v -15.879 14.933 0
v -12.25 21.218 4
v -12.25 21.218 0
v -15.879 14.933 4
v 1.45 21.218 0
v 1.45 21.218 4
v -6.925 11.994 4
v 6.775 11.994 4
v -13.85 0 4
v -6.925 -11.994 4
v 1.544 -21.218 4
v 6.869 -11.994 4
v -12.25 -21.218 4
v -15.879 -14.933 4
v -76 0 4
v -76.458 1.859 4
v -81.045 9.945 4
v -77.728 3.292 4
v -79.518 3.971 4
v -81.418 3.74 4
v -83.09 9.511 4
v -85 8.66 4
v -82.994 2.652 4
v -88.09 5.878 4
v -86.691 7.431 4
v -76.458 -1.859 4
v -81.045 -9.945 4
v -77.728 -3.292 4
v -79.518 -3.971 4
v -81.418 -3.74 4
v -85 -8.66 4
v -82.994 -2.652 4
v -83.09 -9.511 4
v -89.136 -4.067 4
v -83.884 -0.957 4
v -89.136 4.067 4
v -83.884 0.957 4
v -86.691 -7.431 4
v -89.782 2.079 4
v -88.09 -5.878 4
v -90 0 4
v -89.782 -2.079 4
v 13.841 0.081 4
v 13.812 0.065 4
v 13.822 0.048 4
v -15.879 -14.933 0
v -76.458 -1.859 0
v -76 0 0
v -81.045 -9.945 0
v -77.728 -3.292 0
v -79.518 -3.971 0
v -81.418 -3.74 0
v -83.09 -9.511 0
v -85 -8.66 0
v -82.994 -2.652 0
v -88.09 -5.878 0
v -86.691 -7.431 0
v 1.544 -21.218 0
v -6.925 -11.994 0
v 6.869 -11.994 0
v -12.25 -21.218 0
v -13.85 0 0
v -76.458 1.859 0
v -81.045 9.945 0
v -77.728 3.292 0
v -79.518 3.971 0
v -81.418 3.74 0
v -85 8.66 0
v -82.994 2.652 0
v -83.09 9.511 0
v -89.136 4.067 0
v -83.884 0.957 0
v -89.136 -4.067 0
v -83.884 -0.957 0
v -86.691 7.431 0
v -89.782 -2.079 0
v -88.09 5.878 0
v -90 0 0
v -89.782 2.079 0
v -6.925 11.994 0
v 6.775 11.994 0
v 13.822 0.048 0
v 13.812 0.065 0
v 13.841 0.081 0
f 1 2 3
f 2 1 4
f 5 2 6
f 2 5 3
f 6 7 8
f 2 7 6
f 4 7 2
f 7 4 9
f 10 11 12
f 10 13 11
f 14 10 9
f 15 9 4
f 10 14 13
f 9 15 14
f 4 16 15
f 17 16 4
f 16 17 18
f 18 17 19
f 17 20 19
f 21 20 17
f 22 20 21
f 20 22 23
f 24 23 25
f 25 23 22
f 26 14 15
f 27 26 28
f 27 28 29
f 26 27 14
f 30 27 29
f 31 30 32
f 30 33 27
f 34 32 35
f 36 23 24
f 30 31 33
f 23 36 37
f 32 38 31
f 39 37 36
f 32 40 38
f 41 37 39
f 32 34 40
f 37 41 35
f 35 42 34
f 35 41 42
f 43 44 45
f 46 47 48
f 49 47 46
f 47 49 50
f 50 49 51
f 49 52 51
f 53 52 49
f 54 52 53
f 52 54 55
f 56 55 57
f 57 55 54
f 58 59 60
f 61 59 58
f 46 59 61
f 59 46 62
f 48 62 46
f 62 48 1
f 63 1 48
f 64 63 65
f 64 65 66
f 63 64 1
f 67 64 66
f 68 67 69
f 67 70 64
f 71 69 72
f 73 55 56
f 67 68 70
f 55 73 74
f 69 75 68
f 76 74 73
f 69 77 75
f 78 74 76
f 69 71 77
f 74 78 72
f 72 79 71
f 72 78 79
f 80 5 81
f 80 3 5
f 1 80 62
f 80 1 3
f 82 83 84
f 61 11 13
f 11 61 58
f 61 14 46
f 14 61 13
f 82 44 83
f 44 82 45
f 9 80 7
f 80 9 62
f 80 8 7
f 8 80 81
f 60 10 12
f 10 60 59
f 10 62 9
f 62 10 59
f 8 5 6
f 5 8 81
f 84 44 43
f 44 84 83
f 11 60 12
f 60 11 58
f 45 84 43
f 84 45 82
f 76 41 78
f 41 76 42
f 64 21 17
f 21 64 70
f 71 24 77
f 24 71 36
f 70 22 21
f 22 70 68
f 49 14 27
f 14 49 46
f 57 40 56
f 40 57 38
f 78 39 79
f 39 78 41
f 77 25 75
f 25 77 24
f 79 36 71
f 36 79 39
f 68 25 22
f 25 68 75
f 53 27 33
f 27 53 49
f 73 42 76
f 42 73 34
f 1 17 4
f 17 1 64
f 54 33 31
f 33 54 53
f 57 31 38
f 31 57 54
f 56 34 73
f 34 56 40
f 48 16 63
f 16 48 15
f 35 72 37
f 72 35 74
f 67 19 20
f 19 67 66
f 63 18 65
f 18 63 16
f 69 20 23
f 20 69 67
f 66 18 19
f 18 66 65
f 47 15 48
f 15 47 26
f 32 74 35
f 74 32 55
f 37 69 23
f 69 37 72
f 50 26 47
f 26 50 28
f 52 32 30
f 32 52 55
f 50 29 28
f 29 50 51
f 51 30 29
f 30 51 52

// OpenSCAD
difference() {
    cylinder(d=49, h=4, $fn=6);
    cylinder(d=27.7, h=5, $fn=6);
    translate([13.7,0]) rotate([0,0,30]) cube([30,50, 10]);
    translate([-9.3,-40]) rotate([0,0,-30]) cube([30,60, 10]);
}

difference() {
    hull() {
        translate([-80,0,0]) cylinder(d=20,h=4);
        translate([-15,-30/2,0]) cube([1,30,4]);
    }
    translate([-80,0,0]) cylinder(d=8,h=4);
}
